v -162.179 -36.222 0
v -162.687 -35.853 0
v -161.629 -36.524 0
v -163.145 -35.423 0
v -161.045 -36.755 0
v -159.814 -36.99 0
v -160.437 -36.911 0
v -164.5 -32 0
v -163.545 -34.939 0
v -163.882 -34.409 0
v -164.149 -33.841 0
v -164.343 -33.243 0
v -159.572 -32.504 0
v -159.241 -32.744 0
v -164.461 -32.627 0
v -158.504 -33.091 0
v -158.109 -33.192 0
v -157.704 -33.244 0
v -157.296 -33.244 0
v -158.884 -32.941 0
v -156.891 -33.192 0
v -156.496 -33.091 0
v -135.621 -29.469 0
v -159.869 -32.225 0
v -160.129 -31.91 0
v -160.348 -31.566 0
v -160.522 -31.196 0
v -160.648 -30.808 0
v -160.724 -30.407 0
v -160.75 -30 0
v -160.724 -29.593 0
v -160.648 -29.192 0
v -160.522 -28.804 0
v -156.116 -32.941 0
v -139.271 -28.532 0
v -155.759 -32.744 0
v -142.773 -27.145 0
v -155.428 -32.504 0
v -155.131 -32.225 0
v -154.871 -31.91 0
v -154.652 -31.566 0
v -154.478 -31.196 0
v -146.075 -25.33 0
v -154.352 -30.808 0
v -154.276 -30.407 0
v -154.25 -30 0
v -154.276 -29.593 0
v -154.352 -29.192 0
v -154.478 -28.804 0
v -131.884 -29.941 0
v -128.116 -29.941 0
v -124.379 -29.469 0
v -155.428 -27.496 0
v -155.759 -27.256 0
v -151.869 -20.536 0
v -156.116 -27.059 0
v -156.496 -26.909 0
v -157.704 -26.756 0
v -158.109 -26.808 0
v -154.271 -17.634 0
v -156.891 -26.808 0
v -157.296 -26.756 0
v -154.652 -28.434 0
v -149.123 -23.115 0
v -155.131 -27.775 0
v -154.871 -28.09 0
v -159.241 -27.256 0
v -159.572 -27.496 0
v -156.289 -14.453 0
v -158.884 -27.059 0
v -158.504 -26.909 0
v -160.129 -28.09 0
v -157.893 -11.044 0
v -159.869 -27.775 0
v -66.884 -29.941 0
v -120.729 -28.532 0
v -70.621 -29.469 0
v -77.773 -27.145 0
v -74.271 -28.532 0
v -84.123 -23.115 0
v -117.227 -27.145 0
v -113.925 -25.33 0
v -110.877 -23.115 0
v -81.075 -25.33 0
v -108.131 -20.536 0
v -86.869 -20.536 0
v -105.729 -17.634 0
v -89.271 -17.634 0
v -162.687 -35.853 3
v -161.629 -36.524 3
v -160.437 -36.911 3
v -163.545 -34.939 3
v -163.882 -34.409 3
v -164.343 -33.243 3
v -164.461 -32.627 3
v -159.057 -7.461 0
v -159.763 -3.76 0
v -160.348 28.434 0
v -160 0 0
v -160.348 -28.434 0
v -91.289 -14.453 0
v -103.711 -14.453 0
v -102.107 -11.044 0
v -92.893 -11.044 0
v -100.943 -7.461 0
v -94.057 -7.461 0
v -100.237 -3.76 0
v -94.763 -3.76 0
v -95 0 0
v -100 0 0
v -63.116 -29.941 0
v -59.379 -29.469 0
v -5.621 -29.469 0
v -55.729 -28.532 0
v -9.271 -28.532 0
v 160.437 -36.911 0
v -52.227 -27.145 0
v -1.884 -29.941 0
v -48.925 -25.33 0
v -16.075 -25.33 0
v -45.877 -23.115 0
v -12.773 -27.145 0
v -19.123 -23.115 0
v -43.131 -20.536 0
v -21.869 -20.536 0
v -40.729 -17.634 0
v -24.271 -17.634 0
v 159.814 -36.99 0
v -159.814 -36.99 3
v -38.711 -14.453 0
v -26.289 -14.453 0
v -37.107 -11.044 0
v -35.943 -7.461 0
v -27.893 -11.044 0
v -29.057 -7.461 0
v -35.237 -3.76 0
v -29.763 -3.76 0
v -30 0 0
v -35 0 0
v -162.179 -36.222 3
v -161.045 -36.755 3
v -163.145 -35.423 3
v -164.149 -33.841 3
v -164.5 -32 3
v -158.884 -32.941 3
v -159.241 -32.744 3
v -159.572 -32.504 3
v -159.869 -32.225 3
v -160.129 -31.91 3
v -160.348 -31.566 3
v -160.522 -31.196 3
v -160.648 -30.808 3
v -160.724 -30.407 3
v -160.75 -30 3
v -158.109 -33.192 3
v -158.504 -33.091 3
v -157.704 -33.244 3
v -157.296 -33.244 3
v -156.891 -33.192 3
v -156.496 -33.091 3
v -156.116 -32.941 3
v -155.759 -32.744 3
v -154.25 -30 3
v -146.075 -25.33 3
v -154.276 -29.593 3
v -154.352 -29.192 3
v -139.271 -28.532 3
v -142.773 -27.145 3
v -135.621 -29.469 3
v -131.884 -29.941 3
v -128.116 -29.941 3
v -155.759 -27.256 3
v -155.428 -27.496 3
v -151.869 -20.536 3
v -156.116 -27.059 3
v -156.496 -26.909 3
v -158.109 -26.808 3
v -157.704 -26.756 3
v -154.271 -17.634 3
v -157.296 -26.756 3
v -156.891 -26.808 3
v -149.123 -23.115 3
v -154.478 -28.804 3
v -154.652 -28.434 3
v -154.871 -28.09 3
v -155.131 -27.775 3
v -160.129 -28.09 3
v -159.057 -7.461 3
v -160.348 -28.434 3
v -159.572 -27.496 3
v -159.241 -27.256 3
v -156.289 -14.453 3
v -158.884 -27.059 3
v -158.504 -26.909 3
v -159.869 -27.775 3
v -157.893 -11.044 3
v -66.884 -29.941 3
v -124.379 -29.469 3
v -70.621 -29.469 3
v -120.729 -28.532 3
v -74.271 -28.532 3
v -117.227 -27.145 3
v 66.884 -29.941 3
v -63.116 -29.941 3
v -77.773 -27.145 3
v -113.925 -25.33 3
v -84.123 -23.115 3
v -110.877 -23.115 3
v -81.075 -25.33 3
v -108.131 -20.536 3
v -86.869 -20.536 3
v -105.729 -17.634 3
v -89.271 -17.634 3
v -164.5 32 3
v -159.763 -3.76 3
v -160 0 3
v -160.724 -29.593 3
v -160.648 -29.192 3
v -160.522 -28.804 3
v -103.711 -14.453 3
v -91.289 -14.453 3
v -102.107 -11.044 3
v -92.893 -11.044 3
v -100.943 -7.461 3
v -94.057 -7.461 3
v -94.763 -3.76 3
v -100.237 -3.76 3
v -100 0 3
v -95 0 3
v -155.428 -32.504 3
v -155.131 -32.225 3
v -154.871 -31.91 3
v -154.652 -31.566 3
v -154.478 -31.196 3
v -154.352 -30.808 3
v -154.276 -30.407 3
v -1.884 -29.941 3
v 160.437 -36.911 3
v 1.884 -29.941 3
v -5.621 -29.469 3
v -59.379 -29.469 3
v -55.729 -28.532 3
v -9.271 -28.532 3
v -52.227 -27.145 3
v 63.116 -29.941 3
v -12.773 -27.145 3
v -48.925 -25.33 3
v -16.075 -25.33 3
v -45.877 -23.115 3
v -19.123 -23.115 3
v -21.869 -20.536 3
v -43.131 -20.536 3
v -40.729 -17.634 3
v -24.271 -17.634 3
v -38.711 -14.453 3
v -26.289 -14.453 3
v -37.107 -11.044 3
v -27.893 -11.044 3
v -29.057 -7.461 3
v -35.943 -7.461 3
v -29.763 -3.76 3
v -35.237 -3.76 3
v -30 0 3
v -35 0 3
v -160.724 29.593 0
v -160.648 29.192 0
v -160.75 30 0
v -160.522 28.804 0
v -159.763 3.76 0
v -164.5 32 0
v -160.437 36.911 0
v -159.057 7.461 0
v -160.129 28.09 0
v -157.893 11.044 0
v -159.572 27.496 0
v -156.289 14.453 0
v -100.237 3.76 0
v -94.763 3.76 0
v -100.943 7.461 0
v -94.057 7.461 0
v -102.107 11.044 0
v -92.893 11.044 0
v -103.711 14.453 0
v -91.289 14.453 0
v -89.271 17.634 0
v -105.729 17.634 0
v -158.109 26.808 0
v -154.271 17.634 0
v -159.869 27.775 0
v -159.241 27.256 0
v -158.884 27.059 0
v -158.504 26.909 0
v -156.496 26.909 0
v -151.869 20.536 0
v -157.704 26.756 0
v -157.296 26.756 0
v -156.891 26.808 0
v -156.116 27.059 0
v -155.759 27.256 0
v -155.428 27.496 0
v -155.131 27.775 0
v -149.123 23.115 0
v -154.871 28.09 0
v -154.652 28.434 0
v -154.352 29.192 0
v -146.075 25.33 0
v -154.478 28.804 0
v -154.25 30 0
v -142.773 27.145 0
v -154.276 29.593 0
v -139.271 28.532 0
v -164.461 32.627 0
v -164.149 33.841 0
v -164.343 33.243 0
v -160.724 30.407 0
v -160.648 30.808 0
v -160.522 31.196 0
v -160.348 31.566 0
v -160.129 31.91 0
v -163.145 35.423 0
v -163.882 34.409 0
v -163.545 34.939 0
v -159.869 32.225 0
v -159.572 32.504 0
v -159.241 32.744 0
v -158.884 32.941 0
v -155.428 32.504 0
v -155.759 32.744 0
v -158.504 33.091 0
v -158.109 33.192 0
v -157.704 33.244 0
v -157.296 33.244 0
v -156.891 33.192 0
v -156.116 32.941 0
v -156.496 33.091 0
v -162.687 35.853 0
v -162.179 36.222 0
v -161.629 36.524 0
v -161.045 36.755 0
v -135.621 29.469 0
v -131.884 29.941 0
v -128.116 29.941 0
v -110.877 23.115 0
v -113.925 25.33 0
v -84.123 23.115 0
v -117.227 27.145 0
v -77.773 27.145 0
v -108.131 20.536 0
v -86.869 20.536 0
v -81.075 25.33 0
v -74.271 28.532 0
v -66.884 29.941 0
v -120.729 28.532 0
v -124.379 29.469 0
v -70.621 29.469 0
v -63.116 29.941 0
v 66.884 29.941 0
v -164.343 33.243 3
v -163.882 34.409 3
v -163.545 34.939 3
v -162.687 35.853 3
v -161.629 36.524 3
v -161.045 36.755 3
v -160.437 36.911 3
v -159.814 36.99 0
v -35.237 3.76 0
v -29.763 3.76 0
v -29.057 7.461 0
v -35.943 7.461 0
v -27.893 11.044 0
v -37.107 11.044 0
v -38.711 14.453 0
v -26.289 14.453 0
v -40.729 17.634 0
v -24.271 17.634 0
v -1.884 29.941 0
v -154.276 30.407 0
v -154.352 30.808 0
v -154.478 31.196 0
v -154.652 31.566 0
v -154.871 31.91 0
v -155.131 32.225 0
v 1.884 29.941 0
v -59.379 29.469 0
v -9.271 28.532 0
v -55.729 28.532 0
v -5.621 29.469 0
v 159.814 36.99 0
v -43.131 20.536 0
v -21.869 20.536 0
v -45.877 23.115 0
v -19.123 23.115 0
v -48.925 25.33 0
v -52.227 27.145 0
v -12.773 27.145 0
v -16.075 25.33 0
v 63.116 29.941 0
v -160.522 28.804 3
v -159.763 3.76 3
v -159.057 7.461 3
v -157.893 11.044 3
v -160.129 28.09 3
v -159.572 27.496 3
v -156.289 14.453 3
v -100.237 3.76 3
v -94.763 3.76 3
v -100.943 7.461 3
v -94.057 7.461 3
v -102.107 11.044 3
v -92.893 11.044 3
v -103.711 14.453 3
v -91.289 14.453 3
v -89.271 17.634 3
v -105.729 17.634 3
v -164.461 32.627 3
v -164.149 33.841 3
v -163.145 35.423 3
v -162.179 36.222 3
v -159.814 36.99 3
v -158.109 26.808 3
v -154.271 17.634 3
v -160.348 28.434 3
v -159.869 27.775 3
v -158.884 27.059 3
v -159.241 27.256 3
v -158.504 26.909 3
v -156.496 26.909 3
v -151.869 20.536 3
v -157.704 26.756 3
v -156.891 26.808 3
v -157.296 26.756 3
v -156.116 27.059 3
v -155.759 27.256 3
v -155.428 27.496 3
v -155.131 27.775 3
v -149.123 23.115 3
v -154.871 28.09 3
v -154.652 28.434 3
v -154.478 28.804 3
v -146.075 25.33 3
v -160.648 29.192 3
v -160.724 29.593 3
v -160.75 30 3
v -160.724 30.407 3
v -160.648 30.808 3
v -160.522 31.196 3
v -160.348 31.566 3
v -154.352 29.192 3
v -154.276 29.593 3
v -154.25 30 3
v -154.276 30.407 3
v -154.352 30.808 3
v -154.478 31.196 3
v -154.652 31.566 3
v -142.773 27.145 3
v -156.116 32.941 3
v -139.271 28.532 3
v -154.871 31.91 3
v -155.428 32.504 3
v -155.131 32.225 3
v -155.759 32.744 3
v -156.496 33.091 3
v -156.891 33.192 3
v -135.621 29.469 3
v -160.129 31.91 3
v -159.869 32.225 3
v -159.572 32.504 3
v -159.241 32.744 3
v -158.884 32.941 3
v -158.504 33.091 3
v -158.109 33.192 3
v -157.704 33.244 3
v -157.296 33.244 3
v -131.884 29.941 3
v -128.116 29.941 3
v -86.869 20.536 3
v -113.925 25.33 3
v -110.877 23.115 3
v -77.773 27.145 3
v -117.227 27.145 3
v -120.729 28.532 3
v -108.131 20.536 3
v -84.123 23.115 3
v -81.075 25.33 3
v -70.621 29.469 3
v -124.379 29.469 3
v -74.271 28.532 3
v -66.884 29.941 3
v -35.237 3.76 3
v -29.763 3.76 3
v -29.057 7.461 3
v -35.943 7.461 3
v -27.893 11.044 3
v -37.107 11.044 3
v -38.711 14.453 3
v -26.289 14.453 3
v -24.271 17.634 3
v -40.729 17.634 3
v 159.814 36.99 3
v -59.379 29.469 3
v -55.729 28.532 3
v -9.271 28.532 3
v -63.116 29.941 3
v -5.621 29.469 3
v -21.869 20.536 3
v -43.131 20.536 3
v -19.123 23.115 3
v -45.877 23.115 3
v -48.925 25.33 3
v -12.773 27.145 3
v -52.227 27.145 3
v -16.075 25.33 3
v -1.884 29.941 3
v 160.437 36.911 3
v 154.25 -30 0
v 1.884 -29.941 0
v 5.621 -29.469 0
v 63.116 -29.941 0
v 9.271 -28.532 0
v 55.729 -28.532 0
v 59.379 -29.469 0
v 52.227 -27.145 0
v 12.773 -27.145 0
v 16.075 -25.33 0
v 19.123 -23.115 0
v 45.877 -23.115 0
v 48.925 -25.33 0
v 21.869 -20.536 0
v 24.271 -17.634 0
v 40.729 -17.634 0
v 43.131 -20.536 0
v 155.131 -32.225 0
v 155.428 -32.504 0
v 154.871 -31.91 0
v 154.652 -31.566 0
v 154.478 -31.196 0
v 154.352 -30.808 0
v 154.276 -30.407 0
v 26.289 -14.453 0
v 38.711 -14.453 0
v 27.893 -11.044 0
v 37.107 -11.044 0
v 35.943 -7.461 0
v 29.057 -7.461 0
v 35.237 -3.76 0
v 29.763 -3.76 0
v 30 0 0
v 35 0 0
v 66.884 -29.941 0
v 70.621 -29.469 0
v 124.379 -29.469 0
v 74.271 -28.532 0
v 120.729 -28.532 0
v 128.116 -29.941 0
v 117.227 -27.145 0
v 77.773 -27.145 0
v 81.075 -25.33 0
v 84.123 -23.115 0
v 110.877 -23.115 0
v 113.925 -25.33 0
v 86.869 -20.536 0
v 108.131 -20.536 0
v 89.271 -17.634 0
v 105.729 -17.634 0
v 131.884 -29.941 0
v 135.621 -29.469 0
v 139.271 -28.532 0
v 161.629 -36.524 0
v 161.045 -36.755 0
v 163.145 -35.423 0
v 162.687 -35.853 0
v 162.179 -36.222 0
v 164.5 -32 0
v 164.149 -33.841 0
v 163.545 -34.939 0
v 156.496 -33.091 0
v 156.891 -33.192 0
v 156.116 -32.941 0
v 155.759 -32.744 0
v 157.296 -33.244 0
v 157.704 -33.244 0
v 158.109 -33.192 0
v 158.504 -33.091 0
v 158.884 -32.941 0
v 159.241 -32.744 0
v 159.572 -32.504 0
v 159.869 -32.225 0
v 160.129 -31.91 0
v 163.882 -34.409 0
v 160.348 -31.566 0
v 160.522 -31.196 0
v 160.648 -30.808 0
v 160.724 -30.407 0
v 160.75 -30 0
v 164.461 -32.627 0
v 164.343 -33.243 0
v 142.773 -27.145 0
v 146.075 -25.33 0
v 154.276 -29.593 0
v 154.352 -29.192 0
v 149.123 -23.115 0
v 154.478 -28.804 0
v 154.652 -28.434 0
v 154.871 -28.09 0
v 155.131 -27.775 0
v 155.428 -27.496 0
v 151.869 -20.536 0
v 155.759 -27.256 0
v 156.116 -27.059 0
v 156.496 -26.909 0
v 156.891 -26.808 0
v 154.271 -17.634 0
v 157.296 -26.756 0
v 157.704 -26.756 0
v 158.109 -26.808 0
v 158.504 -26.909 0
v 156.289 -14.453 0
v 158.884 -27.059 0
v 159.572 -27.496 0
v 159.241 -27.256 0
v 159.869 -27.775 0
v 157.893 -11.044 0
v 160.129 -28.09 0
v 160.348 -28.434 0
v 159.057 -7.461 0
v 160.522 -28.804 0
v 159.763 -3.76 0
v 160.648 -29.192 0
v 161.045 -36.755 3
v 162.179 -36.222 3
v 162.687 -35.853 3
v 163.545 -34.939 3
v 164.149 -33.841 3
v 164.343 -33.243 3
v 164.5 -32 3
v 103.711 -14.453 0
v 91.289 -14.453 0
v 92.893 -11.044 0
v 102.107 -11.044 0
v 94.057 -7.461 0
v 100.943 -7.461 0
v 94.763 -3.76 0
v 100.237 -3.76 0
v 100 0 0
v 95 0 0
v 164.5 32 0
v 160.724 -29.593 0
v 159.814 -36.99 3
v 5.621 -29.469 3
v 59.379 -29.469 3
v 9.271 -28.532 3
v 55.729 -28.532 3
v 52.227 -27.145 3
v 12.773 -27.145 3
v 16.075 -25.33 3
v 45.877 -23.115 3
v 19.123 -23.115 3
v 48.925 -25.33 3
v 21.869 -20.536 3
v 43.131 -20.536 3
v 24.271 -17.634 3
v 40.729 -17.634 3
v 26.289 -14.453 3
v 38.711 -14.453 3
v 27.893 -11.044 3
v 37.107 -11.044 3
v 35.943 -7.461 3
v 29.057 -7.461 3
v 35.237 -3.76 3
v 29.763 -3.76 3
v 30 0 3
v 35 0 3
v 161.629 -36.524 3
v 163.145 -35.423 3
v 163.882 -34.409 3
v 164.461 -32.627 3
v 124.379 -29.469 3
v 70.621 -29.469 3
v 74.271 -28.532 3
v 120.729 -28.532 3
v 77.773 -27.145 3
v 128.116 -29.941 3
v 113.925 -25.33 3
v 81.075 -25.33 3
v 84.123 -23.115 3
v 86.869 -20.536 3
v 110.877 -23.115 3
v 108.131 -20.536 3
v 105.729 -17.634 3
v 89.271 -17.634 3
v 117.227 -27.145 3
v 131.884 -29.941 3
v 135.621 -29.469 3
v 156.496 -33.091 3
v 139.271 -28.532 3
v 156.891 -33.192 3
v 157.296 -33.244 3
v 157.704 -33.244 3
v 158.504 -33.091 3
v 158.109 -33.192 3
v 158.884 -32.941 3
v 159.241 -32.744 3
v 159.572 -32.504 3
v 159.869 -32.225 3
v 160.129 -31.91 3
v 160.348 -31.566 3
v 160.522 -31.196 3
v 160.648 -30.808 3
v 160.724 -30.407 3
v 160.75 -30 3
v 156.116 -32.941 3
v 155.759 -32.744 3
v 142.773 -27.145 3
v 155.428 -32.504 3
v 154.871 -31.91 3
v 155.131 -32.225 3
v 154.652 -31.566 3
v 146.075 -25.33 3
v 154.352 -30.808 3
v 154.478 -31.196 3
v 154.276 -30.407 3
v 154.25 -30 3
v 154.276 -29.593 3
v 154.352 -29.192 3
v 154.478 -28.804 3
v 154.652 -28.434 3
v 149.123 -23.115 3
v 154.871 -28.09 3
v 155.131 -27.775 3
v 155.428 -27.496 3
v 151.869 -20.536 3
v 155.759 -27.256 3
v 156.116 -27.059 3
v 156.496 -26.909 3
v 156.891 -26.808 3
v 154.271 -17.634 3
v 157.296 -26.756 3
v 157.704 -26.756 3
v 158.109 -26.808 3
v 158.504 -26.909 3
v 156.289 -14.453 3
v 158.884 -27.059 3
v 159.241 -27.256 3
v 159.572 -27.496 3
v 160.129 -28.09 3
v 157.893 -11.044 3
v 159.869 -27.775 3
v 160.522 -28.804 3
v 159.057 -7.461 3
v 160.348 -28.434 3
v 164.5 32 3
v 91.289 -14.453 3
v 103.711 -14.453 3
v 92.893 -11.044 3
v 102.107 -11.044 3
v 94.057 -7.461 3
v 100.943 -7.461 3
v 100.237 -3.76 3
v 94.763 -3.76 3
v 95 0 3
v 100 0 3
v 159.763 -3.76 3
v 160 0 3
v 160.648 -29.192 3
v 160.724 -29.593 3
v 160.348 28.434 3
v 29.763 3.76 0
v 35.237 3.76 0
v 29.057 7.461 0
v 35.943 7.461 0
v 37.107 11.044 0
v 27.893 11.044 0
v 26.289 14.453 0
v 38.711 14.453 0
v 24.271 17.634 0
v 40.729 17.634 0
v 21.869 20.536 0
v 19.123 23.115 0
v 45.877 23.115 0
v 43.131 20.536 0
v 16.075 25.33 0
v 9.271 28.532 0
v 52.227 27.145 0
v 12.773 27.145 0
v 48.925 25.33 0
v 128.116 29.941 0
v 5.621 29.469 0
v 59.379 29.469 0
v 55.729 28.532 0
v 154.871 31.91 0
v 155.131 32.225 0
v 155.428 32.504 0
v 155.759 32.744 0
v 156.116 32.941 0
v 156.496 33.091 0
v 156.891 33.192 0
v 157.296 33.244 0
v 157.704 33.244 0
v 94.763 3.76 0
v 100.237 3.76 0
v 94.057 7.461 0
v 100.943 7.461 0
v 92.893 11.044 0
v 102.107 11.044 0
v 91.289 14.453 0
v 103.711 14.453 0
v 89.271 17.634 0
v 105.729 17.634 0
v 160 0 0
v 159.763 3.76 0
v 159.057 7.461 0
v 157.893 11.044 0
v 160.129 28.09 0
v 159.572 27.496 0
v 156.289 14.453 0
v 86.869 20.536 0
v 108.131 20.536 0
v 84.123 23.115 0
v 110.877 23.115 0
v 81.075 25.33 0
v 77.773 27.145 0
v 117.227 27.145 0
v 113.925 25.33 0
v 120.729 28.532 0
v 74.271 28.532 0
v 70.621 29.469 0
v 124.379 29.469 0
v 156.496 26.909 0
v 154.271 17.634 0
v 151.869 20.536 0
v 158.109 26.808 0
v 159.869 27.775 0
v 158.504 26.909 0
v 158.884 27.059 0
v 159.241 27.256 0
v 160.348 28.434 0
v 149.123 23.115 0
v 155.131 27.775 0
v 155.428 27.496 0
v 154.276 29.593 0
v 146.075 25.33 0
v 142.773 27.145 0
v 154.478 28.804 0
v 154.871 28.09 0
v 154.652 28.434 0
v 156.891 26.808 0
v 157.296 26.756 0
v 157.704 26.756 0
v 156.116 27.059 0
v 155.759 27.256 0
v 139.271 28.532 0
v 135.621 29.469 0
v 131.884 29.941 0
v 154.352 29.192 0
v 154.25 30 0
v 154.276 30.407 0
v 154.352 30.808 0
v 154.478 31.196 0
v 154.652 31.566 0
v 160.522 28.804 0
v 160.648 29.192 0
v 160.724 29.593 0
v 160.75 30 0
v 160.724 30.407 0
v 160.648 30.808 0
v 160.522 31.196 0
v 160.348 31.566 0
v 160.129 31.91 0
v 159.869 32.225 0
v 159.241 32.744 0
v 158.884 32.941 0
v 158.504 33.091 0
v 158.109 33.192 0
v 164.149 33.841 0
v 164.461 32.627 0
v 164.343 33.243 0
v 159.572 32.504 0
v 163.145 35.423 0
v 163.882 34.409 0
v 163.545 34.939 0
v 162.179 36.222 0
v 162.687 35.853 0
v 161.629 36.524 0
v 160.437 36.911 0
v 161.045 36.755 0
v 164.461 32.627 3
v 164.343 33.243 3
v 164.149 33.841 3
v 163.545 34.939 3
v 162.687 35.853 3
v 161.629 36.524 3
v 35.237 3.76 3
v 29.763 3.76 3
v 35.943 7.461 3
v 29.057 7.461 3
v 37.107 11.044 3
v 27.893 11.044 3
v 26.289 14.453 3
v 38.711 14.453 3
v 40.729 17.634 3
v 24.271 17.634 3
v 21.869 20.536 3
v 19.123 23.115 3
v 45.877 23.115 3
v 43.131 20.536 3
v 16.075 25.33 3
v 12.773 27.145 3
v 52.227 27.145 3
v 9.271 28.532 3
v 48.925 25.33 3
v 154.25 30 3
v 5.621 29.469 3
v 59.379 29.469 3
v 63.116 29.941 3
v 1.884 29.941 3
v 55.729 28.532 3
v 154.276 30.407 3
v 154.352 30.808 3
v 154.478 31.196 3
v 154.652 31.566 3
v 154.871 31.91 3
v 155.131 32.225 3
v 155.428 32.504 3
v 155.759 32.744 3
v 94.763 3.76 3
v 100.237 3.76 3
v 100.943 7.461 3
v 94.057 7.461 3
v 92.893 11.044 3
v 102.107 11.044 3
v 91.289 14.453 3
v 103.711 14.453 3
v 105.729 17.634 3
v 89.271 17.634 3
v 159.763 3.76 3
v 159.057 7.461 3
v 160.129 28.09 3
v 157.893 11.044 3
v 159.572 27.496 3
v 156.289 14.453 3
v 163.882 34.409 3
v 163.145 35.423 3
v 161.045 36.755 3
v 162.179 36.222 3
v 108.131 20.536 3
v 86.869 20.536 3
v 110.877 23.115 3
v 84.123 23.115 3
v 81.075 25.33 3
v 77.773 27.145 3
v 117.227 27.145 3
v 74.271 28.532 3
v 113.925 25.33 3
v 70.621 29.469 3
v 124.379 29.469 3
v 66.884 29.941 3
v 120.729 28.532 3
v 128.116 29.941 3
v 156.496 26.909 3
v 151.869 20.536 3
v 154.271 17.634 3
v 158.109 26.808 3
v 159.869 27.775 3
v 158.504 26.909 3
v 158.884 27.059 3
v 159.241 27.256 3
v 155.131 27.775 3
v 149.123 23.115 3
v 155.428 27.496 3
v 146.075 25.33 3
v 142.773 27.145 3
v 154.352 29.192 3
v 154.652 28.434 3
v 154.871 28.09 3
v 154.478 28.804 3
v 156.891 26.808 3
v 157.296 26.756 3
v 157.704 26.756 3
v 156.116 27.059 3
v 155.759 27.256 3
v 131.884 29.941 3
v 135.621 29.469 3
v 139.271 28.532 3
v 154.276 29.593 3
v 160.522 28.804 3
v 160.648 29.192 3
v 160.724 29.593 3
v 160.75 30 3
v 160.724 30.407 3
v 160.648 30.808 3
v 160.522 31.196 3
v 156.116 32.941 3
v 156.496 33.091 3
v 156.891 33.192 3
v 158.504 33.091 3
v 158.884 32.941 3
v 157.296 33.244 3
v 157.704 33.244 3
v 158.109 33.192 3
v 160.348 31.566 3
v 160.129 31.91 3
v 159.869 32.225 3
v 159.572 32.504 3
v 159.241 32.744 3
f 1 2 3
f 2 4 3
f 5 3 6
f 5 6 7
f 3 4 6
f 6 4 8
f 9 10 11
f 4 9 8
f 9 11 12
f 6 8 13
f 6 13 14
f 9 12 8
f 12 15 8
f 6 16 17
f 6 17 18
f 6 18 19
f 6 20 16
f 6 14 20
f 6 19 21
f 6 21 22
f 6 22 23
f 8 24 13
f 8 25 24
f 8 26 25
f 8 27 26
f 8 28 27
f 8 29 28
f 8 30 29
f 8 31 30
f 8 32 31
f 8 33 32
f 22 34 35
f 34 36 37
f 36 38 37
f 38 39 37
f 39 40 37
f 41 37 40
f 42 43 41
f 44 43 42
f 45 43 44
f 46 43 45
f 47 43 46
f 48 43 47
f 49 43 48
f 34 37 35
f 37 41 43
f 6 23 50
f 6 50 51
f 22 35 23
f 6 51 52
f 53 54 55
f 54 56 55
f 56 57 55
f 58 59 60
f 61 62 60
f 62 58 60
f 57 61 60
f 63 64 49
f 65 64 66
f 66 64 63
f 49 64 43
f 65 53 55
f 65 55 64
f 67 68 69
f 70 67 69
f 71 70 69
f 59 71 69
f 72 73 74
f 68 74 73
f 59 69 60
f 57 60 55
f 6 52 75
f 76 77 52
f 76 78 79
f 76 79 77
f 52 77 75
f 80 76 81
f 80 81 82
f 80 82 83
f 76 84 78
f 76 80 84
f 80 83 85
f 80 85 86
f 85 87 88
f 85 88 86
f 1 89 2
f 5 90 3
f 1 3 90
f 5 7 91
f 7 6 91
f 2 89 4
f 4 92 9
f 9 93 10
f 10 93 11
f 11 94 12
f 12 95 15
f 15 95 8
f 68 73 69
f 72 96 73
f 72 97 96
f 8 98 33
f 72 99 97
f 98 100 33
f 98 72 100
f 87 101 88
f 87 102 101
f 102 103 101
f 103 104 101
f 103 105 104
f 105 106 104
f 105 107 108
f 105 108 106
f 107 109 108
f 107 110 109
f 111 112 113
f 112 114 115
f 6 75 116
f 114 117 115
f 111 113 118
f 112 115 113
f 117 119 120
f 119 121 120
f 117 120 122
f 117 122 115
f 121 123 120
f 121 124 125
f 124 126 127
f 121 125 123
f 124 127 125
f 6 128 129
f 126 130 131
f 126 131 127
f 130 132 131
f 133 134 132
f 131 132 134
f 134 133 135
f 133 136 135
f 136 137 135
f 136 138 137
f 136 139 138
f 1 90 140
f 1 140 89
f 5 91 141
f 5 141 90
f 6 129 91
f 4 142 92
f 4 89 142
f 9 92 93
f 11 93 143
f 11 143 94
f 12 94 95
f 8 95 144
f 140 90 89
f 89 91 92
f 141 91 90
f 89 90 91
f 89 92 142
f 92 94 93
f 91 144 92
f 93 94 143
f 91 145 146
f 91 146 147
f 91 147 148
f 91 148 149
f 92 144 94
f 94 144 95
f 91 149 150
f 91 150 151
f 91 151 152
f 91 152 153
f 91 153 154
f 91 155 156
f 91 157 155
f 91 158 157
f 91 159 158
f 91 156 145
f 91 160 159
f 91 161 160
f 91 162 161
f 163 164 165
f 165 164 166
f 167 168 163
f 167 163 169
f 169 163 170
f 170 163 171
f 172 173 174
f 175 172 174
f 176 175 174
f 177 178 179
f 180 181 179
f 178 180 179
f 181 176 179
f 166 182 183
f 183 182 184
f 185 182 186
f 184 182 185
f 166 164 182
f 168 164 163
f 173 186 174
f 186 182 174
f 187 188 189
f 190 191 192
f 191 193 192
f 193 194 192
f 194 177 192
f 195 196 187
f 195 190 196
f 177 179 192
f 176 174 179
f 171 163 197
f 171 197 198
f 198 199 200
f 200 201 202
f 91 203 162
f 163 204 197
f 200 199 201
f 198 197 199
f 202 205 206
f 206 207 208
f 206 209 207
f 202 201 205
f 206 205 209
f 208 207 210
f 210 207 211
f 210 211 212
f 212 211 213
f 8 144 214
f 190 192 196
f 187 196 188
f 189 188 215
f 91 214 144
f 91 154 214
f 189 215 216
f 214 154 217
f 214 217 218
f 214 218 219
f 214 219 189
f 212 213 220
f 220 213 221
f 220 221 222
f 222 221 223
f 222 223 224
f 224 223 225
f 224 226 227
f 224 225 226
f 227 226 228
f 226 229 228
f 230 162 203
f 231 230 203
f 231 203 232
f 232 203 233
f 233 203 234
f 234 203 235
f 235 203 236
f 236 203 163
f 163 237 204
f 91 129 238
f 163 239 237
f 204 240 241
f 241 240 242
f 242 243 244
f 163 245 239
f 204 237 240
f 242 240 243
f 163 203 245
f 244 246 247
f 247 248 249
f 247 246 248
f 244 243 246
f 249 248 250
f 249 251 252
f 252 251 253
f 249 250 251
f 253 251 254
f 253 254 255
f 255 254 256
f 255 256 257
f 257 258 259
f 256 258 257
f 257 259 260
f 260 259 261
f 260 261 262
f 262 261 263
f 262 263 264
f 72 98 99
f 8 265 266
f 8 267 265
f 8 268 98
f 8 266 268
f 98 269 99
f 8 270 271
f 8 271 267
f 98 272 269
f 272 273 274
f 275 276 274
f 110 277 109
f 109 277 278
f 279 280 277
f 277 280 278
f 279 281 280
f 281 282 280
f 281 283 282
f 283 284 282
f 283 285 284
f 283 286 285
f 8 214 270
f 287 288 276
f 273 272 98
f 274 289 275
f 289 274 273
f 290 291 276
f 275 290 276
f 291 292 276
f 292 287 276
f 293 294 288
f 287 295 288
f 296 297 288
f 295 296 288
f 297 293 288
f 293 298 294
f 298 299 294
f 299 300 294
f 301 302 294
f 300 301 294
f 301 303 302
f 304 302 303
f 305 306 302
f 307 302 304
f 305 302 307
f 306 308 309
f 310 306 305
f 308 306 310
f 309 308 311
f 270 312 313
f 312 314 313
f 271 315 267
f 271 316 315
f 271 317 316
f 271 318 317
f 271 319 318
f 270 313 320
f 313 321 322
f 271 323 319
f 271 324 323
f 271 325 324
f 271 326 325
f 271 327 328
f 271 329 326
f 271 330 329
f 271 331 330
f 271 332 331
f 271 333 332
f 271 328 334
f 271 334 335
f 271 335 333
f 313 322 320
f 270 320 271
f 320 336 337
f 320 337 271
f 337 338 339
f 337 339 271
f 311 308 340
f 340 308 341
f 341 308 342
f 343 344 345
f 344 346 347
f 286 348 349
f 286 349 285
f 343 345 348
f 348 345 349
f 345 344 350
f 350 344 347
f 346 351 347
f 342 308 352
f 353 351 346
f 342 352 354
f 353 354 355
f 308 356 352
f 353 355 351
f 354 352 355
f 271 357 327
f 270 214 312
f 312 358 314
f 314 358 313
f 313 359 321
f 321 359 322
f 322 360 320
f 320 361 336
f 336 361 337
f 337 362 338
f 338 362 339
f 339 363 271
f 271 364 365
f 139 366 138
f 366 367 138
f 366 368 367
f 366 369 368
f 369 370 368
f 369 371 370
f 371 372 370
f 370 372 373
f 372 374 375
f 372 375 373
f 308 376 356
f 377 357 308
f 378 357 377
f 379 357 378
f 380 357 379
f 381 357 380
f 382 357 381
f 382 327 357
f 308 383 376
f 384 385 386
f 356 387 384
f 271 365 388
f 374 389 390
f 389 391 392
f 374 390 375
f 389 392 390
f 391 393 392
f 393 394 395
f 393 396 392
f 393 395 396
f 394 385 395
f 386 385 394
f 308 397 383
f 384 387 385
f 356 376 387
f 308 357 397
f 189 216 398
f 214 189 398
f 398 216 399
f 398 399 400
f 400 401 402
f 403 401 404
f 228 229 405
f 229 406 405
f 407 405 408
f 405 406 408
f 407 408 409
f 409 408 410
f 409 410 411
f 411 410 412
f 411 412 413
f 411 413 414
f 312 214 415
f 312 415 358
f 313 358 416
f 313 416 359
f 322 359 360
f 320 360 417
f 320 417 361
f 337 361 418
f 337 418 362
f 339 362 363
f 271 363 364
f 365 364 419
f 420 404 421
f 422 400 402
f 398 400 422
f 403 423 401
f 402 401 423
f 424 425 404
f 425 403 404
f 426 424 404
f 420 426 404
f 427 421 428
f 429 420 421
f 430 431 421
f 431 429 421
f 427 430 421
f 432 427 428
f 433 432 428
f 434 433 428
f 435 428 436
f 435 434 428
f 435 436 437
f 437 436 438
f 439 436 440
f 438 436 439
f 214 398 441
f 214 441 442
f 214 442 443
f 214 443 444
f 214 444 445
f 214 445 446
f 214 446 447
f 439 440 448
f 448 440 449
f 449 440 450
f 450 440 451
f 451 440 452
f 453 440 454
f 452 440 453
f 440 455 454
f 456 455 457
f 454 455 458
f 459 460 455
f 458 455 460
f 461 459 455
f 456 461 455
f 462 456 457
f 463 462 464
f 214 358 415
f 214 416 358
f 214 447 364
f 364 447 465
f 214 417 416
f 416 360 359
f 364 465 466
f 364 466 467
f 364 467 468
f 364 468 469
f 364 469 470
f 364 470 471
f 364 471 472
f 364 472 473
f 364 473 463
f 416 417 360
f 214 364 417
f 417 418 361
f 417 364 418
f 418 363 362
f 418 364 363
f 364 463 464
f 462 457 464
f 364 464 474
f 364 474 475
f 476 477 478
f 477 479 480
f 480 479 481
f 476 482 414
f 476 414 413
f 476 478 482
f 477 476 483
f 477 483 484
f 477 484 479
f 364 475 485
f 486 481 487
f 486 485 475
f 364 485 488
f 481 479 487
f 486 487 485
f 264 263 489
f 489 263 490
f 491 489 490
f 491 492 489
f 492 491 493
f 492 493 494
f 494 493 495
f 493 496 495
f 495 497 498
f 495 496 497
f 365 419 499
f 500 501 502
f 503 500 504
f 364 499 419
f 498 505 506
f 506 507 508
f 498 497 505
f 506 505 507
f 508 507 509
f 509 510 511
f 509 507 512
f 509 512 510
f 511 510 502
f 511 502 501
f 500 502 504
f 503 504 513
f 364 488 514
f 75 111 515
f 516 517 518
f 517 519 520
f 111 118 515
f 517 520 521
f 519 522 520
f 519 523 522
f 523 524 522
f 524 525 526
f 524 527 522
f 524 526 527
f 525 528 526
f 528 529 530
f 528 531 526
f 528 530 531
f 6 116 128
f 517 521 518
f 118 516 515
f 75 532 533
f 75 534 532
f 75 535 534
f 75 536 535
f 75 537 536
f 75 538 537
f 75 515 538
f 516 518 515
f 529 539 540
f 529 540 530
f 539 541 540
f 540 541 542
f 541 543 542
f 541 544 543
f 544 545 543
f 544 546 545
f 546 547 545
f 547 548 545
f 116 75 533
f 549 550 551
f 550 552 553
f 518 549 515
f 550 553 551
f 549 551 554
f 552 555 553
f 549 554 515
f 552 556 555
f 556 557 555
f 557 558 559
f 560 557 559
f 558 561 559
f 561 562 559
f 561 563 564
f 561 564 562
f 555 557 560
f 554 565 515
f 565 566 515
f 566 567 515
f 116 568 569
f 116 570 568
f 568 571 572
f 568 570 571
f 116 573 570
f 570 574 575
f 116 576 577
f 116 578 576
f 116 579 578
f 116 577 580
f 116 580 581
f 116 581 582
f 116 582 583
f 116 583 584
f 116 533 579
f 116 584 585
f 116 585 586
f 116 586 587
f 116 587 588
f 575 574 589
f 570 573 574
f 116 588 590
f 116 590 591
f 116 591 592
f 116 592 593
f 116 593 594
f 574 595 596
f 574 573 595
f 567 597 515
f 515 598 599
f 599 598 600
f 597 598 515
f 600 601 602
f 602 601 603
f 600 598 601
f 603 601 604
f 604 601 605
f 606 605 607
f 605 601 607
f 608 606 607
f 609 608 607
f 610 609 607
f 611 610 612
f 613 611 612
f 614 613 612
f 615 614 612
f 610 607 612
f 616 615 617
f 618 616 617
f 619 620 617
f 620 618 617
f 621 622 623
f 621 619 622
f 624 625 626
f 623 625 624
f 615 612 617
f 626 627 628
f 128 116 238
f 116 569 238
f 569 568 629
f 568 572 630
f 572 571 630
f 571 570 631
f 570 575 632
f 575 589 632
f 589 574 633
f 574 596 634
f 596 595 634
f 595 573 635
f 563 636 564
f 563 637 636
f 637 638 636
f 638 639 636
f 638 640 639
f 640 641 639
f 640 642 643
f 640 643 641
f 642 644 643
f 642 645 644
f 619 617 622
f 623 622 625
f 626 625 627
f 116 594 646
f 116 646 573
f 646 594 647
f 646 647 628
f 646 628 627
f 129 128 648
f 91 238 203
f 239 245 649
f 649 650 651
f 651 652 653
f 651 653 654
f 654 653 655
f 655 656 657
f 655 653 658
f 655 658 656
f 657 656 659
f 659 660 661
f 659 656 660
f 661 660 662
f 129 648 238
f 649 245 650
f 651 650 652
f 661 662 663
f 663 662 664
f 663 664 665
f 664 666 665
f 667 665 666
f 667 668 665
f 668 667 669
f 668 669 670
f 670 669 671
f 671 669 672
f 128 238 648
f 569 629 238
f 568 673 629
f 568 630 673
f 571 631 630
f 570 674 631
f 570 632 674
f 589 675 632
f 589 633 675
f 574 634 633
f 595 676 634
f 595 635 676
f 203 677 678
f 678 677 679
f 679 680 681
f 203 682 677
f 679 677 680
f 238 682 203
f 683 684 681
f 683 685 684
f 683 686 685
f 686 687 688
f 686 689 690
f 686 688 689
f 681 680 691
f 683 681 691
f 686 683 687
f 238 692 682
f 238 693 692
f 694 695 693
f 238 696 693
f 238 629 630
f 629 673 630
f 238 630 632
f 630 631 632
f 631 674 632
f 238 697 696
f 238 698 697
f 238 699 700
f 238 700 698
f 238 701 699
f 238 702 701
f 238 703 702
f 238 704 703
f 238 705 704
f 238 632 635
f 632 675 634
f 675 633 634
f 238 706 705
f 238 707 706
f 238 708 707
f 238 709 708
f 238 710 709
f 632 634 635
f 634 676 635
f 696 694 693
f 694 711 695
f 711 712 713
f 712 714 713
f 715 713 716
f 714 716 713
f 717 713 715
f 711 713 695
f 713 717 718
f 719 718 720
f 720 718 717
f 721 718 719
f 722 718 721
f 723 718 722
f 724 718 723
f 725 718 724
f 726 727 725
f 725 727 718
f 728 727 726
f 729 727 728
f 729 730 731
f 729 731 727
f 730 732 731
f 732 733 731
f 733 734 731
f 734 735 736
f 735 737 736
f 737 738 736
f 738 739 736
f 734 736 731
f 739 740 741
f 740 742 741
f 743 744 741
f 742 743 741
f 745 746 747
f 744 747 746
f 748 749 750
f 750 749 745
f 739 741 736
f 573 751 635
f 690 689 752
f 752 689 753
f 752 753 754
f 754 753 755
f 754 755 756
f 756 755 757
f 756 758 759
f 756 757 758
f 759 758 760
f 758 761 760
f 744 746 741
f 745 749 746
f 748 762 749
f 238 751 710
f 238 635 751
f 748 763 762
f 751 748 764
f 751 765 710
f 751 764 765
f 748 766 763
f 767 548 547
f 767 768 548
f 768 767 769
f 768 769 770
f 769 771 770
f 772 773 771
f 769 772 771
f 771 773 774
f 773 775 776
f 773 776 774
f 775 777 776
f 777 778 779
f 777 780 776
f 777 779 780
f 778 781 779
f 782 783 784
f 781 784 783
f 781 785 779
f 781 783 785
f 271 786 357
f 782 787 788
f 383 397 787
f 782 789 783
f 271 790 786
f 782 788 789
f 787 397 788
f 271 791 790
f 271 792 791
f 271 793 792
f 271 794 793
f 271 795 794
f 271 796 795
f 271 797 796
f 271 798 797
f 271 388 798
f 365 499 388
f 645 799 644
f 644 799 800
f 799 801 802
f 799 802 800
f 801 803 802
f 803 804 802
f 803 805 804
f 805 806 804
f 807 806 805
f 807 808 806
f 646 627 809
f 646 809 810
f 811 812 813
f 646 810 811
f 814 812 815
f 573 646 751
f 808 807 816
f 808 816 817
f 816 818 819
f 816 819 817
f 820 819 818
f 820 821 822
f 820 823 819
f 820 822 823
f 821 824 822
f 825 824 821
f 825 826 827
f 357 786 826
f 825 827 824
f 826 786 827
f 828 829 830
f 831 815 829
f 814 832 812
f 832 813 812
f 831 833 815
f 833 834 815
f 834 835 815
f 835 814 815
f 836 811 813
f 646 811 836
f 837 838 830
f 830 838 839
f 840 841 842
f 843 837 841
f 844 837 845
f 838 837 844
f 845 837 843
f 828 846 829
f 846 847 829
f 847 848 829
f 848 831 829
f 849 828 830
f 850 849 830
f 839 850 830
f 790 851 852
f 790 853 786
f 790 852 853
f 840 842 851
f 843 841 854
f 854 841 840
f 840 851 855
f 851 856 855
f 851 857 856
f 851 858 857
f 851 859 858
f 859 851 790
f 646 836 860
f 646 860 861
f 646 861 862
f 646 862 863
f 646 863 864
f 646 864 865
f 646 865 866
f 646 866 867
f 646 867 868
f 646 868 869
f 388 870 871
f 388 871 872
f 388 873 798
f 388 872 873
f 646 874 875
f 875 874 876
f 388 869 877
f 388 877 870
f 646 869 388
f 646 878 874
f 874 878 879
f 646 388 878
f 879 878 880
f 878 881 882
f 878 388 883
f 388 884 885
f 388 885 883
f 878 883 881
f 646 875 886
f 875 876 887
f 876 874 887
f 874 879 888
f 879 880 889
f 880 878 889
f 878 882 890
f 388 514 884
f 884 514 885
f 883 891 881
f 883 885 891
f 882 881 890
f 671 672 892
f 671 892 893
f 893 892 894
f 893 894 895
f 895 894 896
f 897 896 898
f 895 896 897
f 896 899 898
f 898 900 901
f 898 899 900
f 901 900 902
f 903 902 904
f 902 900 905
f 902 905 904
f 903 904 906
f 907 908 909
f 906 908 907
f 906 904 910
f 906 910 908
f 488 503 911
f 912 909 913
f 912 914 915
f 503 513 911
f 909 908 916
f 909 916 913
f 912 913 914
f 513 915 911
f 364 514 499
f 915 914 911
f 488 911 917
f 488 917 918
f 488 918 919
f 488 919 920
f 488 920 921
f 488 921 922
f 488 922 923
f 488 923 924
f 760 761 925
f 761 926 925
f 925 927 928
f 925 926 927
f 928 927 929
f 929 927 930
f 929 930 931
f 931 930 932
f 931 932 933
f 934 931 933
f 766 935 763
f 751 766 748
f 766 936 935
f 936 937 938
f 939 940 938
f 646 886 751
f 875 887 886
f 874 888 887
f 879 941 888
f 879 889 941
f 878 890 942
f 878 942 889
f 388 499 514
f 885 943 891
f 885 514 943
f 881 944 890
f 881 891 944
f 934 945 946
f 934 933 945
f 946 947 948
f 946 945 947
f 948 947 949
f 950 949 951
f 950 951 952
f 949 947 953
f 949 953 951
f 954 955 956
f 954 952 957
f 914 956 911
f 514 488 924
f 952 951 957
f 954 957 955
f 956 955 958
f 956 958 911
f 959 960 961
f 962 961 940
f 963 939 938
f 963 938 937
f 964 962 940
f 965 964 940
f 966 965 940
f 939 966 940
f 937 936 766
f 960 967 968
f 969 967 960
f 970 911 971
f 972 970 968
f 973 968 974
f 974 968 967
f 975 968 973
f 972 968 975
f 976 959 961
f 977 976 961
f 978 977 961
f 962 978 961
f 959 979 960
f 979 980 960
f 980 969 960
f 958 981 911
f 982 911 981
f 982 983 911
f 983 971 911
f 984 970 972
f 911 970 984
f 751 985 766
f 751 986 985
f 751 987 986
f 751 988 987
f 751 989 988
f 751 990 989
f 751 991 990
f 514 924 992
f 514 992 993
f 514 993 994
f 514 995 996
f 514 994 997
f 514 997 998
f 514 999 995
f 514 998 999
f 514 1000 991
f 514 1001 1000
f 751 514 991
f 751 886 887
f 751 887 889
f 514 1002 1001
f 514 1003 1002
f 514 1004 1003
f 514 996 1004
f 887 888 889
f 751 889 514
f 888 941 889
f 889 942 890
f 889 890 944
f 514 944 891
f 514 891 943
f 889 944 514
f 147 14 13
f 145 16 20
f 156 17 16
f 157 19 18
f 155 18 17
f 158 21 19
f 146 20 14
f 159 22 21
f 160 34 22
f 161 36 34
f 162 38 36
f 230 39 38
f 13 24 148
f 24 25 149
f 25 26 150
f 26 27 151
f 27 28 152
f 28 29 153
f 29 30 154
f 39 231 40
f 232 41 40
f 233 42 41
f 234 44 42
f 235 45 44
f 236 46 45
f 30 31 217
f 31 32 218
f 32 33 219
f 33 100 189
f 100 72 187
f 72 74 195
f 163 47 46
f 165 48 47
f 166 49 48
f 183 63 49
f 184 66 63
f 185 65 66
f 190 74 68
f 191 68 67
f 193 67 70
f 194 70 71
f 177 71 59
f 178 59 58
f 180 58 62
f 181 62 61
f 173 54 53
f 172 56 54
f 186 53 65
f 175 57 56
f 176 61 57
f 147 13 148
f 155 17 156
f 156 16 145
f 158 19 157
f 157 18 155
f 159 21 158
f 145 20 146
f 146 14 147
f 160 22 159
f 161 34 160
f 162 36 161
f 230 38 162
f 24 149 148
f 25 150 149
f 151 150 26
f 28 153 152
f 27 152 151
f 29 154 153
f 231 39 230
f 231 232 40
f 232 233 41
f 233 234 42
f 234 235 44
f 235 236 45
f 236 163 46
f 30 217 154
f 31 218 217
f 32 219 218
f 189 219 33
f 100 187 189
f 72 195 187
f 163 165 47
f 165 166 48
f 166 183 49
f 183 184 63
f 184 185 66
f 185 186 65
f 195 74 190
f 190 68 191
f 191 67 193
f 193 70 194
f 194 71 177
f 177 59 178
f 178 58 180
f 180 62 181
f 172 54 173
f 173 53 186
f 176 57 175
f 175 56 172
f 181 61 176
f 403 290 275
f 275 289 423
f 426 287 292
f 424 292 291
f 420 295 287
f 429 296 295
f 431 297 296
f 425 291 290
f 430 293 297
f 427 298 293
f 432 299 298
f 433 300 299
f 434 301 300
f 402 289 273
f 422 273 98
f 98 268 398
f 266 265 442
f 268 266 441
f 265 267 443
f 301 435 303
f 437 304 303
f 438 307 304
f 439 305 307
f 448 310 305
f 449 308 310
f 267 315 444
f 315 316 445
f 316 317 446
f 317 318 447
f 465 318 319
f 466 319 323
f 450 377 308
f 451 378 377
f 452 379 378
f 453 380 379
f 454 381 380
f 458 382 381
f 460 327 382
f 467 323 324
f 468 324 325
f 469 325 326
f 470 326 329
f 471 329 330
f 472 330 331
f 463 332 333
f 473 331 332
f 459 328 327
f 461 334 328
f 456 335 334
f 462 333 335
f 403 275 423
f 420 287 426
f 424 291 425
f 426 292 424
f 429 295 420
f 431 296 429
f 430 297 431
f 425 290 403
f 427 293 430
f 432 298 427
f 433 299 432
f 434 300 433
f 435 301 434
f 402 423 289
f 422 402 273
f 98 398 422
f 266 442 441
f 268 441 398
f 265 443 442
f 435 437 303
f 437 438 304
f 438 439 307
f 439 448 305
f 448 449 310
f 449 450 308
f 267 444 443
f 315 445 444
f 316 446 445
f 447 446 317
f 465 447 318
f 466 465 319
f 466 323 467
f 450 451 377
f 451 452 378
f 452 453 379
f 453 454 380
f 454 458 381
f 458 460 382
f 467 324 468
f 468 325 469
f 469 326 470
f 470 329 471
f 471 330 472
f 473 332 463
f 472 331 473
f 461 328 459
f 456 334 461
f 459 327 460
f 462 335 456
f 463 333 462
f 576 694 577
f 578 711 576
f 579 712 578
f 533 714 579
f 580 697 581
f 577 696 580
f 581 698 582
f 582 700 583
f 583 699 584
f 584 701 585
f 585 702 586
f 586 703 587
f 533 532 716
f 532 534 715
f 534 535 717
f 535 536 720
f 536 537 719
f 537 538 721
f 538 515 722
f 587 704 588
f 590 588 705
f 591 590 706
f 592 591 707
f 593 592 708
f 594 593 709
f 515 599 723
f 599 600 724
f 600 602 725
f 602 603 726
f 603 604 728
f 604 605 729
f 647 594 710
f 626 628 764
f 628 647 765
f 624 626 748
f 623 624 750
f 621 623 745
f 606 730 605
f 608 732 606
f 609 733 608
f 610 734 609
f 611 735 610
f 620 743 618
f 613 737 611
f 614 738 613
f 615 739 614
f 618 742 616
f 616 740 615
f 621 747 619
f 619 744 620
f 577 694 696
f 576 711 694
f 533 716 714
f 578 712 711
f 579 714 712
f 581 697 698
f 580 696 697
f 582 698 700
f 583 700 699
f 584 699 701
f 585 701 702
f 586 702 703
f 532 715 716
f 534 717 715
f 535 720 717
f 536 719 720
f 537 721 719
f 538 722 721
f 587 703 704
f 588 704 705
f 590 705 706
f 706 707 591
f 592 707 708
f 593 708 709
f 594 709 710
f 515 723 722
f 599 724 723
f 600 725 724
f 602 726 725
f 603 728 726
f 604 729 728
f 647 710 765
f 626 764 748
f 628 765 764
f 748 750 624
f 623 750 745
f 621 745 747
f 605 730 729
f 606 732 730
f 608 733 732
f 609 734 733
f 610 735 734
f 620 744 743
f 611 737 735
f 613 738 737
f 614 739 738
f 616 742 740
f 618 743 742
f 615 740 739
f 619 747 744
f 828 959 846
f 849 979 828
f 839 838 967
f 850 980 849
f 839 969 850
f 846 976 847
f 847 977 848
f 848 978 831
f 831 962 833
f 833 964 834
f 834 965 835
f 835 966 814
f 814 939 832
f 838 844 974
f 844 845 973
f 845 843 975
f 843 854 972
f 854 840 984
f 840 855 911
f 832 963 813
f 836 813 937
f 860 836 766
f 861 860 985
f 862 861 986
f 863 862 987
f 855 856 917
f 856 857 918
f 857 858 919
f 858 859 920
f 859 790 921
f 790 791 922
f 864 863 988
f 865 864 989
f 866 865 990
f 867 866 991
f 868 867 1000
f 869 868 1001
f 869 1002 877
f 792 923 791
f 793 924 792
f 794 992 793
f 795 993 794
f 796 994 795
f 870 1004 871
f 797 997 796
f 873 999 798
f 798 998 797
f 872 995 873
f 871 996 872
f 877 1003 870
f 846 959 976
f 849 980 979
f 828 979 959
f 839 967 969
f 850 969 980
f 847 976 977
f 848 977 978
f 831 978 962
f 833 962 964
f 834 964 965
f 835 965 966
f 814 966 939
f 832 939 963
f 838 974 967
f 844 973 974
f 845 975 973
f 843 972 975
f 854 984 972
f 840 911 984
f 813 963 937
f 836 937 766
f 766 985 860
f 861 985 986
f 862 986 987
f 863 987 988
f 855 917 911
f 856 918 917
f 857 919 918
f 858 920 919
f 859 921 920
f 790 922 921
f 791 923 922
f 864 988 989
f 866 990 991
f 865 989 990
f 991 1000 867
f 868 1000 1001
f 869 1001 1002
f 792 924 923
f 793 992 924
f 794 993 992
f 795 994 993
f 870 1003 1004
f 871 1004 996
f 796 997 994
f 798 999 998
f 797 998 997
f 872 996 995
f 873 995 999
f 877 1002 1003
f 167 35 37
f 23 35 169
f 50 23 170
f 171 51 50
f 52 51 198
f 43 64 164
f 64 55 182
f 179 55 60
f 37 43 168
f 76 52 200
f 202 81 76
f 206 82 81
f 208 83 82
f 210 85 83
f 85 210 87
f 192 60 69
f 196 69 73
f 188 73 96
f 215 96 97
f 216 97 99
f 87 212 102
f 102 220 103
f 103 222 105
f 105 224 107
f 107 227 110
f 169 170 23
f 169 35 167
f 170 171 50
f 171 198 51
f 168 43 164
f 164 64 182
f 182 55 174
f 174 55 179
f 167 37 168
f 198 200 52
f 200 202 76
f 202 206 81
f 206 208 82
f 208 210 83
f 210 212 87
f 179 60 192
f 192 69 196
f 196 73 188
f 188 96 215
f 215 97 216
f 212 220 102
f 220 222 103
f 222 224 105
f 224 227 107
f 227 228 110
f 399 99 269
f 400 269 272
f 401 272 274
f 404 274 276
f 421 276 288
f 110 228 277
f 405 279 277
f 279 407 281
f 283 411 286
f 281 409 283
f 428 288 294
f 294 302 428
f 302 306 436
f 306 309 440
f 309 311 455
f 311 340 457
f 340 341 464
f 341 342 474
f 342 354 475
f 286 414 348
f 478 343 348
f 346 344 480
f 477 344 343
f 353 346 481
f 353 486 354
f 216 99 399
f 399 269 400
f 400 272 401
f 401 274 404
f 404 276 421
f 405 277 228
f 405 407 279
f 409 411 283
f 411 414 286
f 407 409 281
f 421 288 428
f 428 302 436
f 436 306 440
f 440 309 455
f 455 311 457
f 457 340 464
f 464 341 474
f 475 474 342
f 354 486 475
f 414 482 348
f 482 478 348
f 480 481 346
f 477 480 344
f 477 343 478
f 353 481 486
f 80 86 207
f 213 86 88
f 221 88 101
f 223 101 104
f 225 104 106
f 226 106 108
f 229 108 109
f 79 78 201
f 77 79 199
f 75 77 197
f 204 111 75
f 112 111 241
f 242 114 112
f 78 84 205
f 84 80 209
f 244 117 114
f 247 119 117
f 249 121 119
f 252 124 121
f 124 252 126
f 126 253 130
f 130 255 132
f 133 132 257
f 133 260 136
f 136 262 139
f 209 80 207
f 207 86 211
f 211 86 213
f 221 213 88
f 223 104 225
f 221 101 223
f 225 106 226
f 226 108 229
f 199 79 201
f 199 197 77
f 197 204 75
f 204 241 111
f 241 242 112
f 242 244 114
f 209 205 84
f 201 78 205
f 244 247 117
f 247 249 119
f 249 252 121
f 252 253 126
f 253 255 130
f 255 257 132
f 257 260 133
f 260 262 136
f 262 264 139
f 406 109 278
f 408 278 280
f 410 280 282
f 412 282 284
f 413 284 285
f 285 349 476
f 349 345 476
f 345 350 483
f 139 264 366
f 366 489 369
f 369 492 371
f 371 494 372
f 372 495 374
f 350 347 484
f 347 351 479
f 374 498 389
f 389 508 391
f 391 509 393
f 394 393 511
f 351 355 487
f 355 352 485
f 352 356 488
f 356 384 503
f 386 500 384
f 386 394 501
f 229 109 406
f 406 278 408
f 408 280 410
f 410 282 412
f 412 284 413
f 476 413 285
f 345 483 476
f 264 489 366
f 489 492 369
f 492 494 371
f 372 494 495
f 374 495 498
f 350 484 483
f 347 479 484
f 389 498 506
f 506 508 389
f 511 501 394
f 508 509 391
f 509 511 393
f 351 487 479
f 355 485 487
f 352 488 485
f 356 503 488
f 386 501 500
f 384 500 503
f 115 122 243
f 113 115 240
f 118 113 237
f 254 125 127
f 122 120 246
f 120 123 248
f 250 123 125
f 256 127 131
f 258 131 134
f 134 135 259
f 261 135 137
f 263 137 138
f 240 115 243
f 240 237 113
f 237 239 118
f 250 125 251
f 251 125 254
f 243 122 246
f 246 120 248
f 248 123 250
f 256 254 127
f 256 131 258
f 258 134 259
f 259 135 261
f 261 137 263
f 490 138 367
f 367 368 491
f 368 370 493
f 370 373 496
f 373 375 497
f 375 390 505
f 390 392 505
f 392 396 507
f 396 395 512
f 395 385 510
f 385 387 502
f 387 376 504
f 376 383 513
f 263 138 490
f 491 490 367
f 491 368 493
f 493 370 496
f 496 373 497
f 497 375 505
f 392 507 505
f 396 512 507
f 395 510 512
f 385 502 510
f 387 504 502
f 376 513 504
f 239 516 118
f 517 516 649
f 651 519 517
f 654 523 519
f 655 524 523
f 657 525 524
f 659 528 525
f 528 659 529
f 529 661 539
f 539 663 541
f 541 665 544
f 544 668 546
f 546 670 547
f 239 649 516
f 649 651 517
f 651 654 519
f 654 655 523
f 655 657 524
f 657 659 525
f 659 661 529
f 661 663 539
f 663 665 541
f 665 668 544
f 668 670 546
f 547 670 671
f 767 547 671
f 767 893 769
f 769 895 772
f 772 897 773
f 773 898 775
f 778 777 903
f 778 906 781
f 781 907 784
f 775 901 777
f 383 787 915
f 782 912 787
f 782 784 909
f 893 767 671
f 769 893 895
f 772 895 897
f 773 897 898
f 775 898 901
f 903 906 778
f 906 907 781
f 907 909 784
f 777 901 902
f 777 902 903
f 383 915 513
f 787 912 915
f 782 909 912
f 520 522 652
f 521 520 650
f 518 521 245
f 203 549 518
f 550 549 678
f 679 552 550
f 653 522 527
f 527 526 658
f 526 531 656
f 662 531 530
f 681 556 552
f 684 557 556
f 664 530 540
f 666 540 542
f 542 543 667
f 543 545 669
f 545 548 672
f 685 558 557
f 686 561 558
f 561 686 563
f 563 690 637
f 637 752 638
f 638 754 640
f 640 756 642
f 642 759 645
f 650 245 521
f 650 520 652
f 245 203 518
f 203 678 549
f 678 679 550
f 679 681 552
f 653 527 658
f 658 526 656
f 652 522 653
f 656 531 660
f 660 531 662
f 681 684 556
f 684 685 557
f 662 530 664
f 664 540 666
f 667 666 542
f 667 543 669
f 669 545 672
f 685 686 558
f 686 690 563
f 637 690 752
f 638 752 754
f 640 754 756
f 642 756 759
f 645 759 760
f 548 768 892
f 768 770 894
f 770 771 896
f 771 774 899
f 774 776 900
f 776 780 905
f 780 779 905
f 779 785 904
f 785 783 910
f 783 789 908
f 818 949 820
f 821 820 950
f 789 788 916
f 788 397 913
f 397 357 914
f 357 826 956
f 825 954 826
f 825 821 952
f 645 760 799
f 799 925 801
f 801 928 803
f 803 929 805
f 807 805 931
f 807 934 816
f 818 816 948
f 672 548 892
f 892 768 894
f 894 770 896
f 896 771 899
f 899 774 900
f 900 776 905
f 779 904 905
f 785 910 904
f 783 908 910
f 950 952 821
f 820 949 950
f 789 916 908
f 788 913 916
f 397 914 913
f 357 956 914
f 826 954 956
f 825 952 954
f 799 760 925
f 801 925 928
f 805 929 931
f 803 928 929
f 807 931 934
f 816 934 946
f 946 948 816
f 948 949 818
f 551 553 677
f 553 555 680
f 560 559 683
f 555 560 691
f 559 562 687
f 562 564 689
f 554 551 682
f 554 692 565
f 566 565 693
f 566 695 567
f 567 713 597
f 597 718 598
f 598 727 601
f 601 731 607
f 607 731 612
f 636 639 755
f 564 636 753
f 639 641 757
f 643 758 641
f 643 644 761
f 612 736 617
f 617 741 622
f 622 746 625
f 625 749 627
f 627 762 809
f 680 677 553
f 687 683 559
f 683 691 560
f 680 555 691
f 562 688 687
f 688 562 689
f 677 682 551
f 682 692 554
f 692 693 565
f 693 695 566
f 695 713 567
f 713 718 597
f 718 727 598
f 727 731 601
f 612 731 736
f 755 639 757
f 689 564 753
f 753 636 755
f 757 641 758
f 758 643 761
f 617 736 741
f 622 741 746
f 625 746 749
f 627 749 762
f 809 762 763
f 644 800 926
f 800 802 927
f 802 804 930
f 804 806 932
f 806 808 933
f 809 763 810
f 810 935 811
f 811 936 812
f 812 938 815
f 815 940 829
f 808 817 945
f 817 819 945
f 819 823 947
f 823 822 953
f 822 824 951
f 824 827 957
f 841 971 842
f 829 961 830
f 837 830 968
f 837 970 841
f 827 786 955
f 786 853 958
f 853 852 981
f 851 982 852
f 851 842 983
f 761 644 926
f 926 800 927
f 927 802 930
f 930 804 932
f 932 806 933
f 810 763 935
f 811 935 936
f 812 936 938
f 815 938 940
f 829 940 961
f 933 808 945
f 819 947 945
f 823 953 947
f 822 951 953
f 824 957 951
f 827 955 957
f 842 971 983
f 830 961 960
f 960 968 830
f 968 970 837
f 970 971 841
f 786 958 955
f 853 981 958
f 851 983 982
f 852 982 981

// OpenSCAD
$fn = 50;

difference() {
	union() {
		hull() {
			translate(v = [-159.5, 32.0, 0]) {
				cylinder(h = 3, r = 5);
			}
			translate(v = [159.5, 32.0, 0]) {
				cylinder(h = 3, r = 5);
			}
			translate(v = [-159.5, -32.0, 0]) {
				cylinder(h = 3, r = 5);
			}
			translate(v = [159.5, -32.0, 0]) {
				cylinder(h = 3, r = 5);
			}
		}
	}
	union() {
		translate(v = [-157.5, -30.0, -100.0]) {
			cylinder(h = 200, r = 3.25);
		}
		translate(v = [-157.5, 30.0, -100.0]) {
			cylinder(h = 200, r = 3.25);
		}
		translate(v = [157.5, -30.0, -100.0]) {
			cylinder(h = 200, r = 3.25);
		}
		translate(v = [157.5, 30.0, -100.0]) {
			cylinder(h = 200, r = 3.25);
		}
		translate(v = [-157.5, -30.0, -100.0]) {
			cylinder(h = 200, r = 1.8);
		}
		translate(v = [-157.5, 30.0, -100.0]) {
			cylinder(h = 200, r = 1.8);
		}
		translate(v = [157.5, -30.0, -100.0]) {
			cylinder(h = 200, r = 1.8);
		}
		translate(v = [157.5, 30.0, -100.0]) {
			cylinder(h = 200, r = 1.8);
		}
		translate(v = [-130.0, 0, 0.0]) {
			cylinder(h = 3, r = 30.0);
		}
		translate(v = [-65.0, 0, 0.0]) {
			cylinder(h = 3, r = 30.0);
		}
		cylinder(h = 3, r = 30.0);
		translate(v = [65.0, 0, 0.0]) {
			cylinder(h = 3, r = 30.0);
		}
		translate(v = [130.0, 0, 0.0]) {
			cylinder(h = 3, r = 30.0);
		}
	}
}
